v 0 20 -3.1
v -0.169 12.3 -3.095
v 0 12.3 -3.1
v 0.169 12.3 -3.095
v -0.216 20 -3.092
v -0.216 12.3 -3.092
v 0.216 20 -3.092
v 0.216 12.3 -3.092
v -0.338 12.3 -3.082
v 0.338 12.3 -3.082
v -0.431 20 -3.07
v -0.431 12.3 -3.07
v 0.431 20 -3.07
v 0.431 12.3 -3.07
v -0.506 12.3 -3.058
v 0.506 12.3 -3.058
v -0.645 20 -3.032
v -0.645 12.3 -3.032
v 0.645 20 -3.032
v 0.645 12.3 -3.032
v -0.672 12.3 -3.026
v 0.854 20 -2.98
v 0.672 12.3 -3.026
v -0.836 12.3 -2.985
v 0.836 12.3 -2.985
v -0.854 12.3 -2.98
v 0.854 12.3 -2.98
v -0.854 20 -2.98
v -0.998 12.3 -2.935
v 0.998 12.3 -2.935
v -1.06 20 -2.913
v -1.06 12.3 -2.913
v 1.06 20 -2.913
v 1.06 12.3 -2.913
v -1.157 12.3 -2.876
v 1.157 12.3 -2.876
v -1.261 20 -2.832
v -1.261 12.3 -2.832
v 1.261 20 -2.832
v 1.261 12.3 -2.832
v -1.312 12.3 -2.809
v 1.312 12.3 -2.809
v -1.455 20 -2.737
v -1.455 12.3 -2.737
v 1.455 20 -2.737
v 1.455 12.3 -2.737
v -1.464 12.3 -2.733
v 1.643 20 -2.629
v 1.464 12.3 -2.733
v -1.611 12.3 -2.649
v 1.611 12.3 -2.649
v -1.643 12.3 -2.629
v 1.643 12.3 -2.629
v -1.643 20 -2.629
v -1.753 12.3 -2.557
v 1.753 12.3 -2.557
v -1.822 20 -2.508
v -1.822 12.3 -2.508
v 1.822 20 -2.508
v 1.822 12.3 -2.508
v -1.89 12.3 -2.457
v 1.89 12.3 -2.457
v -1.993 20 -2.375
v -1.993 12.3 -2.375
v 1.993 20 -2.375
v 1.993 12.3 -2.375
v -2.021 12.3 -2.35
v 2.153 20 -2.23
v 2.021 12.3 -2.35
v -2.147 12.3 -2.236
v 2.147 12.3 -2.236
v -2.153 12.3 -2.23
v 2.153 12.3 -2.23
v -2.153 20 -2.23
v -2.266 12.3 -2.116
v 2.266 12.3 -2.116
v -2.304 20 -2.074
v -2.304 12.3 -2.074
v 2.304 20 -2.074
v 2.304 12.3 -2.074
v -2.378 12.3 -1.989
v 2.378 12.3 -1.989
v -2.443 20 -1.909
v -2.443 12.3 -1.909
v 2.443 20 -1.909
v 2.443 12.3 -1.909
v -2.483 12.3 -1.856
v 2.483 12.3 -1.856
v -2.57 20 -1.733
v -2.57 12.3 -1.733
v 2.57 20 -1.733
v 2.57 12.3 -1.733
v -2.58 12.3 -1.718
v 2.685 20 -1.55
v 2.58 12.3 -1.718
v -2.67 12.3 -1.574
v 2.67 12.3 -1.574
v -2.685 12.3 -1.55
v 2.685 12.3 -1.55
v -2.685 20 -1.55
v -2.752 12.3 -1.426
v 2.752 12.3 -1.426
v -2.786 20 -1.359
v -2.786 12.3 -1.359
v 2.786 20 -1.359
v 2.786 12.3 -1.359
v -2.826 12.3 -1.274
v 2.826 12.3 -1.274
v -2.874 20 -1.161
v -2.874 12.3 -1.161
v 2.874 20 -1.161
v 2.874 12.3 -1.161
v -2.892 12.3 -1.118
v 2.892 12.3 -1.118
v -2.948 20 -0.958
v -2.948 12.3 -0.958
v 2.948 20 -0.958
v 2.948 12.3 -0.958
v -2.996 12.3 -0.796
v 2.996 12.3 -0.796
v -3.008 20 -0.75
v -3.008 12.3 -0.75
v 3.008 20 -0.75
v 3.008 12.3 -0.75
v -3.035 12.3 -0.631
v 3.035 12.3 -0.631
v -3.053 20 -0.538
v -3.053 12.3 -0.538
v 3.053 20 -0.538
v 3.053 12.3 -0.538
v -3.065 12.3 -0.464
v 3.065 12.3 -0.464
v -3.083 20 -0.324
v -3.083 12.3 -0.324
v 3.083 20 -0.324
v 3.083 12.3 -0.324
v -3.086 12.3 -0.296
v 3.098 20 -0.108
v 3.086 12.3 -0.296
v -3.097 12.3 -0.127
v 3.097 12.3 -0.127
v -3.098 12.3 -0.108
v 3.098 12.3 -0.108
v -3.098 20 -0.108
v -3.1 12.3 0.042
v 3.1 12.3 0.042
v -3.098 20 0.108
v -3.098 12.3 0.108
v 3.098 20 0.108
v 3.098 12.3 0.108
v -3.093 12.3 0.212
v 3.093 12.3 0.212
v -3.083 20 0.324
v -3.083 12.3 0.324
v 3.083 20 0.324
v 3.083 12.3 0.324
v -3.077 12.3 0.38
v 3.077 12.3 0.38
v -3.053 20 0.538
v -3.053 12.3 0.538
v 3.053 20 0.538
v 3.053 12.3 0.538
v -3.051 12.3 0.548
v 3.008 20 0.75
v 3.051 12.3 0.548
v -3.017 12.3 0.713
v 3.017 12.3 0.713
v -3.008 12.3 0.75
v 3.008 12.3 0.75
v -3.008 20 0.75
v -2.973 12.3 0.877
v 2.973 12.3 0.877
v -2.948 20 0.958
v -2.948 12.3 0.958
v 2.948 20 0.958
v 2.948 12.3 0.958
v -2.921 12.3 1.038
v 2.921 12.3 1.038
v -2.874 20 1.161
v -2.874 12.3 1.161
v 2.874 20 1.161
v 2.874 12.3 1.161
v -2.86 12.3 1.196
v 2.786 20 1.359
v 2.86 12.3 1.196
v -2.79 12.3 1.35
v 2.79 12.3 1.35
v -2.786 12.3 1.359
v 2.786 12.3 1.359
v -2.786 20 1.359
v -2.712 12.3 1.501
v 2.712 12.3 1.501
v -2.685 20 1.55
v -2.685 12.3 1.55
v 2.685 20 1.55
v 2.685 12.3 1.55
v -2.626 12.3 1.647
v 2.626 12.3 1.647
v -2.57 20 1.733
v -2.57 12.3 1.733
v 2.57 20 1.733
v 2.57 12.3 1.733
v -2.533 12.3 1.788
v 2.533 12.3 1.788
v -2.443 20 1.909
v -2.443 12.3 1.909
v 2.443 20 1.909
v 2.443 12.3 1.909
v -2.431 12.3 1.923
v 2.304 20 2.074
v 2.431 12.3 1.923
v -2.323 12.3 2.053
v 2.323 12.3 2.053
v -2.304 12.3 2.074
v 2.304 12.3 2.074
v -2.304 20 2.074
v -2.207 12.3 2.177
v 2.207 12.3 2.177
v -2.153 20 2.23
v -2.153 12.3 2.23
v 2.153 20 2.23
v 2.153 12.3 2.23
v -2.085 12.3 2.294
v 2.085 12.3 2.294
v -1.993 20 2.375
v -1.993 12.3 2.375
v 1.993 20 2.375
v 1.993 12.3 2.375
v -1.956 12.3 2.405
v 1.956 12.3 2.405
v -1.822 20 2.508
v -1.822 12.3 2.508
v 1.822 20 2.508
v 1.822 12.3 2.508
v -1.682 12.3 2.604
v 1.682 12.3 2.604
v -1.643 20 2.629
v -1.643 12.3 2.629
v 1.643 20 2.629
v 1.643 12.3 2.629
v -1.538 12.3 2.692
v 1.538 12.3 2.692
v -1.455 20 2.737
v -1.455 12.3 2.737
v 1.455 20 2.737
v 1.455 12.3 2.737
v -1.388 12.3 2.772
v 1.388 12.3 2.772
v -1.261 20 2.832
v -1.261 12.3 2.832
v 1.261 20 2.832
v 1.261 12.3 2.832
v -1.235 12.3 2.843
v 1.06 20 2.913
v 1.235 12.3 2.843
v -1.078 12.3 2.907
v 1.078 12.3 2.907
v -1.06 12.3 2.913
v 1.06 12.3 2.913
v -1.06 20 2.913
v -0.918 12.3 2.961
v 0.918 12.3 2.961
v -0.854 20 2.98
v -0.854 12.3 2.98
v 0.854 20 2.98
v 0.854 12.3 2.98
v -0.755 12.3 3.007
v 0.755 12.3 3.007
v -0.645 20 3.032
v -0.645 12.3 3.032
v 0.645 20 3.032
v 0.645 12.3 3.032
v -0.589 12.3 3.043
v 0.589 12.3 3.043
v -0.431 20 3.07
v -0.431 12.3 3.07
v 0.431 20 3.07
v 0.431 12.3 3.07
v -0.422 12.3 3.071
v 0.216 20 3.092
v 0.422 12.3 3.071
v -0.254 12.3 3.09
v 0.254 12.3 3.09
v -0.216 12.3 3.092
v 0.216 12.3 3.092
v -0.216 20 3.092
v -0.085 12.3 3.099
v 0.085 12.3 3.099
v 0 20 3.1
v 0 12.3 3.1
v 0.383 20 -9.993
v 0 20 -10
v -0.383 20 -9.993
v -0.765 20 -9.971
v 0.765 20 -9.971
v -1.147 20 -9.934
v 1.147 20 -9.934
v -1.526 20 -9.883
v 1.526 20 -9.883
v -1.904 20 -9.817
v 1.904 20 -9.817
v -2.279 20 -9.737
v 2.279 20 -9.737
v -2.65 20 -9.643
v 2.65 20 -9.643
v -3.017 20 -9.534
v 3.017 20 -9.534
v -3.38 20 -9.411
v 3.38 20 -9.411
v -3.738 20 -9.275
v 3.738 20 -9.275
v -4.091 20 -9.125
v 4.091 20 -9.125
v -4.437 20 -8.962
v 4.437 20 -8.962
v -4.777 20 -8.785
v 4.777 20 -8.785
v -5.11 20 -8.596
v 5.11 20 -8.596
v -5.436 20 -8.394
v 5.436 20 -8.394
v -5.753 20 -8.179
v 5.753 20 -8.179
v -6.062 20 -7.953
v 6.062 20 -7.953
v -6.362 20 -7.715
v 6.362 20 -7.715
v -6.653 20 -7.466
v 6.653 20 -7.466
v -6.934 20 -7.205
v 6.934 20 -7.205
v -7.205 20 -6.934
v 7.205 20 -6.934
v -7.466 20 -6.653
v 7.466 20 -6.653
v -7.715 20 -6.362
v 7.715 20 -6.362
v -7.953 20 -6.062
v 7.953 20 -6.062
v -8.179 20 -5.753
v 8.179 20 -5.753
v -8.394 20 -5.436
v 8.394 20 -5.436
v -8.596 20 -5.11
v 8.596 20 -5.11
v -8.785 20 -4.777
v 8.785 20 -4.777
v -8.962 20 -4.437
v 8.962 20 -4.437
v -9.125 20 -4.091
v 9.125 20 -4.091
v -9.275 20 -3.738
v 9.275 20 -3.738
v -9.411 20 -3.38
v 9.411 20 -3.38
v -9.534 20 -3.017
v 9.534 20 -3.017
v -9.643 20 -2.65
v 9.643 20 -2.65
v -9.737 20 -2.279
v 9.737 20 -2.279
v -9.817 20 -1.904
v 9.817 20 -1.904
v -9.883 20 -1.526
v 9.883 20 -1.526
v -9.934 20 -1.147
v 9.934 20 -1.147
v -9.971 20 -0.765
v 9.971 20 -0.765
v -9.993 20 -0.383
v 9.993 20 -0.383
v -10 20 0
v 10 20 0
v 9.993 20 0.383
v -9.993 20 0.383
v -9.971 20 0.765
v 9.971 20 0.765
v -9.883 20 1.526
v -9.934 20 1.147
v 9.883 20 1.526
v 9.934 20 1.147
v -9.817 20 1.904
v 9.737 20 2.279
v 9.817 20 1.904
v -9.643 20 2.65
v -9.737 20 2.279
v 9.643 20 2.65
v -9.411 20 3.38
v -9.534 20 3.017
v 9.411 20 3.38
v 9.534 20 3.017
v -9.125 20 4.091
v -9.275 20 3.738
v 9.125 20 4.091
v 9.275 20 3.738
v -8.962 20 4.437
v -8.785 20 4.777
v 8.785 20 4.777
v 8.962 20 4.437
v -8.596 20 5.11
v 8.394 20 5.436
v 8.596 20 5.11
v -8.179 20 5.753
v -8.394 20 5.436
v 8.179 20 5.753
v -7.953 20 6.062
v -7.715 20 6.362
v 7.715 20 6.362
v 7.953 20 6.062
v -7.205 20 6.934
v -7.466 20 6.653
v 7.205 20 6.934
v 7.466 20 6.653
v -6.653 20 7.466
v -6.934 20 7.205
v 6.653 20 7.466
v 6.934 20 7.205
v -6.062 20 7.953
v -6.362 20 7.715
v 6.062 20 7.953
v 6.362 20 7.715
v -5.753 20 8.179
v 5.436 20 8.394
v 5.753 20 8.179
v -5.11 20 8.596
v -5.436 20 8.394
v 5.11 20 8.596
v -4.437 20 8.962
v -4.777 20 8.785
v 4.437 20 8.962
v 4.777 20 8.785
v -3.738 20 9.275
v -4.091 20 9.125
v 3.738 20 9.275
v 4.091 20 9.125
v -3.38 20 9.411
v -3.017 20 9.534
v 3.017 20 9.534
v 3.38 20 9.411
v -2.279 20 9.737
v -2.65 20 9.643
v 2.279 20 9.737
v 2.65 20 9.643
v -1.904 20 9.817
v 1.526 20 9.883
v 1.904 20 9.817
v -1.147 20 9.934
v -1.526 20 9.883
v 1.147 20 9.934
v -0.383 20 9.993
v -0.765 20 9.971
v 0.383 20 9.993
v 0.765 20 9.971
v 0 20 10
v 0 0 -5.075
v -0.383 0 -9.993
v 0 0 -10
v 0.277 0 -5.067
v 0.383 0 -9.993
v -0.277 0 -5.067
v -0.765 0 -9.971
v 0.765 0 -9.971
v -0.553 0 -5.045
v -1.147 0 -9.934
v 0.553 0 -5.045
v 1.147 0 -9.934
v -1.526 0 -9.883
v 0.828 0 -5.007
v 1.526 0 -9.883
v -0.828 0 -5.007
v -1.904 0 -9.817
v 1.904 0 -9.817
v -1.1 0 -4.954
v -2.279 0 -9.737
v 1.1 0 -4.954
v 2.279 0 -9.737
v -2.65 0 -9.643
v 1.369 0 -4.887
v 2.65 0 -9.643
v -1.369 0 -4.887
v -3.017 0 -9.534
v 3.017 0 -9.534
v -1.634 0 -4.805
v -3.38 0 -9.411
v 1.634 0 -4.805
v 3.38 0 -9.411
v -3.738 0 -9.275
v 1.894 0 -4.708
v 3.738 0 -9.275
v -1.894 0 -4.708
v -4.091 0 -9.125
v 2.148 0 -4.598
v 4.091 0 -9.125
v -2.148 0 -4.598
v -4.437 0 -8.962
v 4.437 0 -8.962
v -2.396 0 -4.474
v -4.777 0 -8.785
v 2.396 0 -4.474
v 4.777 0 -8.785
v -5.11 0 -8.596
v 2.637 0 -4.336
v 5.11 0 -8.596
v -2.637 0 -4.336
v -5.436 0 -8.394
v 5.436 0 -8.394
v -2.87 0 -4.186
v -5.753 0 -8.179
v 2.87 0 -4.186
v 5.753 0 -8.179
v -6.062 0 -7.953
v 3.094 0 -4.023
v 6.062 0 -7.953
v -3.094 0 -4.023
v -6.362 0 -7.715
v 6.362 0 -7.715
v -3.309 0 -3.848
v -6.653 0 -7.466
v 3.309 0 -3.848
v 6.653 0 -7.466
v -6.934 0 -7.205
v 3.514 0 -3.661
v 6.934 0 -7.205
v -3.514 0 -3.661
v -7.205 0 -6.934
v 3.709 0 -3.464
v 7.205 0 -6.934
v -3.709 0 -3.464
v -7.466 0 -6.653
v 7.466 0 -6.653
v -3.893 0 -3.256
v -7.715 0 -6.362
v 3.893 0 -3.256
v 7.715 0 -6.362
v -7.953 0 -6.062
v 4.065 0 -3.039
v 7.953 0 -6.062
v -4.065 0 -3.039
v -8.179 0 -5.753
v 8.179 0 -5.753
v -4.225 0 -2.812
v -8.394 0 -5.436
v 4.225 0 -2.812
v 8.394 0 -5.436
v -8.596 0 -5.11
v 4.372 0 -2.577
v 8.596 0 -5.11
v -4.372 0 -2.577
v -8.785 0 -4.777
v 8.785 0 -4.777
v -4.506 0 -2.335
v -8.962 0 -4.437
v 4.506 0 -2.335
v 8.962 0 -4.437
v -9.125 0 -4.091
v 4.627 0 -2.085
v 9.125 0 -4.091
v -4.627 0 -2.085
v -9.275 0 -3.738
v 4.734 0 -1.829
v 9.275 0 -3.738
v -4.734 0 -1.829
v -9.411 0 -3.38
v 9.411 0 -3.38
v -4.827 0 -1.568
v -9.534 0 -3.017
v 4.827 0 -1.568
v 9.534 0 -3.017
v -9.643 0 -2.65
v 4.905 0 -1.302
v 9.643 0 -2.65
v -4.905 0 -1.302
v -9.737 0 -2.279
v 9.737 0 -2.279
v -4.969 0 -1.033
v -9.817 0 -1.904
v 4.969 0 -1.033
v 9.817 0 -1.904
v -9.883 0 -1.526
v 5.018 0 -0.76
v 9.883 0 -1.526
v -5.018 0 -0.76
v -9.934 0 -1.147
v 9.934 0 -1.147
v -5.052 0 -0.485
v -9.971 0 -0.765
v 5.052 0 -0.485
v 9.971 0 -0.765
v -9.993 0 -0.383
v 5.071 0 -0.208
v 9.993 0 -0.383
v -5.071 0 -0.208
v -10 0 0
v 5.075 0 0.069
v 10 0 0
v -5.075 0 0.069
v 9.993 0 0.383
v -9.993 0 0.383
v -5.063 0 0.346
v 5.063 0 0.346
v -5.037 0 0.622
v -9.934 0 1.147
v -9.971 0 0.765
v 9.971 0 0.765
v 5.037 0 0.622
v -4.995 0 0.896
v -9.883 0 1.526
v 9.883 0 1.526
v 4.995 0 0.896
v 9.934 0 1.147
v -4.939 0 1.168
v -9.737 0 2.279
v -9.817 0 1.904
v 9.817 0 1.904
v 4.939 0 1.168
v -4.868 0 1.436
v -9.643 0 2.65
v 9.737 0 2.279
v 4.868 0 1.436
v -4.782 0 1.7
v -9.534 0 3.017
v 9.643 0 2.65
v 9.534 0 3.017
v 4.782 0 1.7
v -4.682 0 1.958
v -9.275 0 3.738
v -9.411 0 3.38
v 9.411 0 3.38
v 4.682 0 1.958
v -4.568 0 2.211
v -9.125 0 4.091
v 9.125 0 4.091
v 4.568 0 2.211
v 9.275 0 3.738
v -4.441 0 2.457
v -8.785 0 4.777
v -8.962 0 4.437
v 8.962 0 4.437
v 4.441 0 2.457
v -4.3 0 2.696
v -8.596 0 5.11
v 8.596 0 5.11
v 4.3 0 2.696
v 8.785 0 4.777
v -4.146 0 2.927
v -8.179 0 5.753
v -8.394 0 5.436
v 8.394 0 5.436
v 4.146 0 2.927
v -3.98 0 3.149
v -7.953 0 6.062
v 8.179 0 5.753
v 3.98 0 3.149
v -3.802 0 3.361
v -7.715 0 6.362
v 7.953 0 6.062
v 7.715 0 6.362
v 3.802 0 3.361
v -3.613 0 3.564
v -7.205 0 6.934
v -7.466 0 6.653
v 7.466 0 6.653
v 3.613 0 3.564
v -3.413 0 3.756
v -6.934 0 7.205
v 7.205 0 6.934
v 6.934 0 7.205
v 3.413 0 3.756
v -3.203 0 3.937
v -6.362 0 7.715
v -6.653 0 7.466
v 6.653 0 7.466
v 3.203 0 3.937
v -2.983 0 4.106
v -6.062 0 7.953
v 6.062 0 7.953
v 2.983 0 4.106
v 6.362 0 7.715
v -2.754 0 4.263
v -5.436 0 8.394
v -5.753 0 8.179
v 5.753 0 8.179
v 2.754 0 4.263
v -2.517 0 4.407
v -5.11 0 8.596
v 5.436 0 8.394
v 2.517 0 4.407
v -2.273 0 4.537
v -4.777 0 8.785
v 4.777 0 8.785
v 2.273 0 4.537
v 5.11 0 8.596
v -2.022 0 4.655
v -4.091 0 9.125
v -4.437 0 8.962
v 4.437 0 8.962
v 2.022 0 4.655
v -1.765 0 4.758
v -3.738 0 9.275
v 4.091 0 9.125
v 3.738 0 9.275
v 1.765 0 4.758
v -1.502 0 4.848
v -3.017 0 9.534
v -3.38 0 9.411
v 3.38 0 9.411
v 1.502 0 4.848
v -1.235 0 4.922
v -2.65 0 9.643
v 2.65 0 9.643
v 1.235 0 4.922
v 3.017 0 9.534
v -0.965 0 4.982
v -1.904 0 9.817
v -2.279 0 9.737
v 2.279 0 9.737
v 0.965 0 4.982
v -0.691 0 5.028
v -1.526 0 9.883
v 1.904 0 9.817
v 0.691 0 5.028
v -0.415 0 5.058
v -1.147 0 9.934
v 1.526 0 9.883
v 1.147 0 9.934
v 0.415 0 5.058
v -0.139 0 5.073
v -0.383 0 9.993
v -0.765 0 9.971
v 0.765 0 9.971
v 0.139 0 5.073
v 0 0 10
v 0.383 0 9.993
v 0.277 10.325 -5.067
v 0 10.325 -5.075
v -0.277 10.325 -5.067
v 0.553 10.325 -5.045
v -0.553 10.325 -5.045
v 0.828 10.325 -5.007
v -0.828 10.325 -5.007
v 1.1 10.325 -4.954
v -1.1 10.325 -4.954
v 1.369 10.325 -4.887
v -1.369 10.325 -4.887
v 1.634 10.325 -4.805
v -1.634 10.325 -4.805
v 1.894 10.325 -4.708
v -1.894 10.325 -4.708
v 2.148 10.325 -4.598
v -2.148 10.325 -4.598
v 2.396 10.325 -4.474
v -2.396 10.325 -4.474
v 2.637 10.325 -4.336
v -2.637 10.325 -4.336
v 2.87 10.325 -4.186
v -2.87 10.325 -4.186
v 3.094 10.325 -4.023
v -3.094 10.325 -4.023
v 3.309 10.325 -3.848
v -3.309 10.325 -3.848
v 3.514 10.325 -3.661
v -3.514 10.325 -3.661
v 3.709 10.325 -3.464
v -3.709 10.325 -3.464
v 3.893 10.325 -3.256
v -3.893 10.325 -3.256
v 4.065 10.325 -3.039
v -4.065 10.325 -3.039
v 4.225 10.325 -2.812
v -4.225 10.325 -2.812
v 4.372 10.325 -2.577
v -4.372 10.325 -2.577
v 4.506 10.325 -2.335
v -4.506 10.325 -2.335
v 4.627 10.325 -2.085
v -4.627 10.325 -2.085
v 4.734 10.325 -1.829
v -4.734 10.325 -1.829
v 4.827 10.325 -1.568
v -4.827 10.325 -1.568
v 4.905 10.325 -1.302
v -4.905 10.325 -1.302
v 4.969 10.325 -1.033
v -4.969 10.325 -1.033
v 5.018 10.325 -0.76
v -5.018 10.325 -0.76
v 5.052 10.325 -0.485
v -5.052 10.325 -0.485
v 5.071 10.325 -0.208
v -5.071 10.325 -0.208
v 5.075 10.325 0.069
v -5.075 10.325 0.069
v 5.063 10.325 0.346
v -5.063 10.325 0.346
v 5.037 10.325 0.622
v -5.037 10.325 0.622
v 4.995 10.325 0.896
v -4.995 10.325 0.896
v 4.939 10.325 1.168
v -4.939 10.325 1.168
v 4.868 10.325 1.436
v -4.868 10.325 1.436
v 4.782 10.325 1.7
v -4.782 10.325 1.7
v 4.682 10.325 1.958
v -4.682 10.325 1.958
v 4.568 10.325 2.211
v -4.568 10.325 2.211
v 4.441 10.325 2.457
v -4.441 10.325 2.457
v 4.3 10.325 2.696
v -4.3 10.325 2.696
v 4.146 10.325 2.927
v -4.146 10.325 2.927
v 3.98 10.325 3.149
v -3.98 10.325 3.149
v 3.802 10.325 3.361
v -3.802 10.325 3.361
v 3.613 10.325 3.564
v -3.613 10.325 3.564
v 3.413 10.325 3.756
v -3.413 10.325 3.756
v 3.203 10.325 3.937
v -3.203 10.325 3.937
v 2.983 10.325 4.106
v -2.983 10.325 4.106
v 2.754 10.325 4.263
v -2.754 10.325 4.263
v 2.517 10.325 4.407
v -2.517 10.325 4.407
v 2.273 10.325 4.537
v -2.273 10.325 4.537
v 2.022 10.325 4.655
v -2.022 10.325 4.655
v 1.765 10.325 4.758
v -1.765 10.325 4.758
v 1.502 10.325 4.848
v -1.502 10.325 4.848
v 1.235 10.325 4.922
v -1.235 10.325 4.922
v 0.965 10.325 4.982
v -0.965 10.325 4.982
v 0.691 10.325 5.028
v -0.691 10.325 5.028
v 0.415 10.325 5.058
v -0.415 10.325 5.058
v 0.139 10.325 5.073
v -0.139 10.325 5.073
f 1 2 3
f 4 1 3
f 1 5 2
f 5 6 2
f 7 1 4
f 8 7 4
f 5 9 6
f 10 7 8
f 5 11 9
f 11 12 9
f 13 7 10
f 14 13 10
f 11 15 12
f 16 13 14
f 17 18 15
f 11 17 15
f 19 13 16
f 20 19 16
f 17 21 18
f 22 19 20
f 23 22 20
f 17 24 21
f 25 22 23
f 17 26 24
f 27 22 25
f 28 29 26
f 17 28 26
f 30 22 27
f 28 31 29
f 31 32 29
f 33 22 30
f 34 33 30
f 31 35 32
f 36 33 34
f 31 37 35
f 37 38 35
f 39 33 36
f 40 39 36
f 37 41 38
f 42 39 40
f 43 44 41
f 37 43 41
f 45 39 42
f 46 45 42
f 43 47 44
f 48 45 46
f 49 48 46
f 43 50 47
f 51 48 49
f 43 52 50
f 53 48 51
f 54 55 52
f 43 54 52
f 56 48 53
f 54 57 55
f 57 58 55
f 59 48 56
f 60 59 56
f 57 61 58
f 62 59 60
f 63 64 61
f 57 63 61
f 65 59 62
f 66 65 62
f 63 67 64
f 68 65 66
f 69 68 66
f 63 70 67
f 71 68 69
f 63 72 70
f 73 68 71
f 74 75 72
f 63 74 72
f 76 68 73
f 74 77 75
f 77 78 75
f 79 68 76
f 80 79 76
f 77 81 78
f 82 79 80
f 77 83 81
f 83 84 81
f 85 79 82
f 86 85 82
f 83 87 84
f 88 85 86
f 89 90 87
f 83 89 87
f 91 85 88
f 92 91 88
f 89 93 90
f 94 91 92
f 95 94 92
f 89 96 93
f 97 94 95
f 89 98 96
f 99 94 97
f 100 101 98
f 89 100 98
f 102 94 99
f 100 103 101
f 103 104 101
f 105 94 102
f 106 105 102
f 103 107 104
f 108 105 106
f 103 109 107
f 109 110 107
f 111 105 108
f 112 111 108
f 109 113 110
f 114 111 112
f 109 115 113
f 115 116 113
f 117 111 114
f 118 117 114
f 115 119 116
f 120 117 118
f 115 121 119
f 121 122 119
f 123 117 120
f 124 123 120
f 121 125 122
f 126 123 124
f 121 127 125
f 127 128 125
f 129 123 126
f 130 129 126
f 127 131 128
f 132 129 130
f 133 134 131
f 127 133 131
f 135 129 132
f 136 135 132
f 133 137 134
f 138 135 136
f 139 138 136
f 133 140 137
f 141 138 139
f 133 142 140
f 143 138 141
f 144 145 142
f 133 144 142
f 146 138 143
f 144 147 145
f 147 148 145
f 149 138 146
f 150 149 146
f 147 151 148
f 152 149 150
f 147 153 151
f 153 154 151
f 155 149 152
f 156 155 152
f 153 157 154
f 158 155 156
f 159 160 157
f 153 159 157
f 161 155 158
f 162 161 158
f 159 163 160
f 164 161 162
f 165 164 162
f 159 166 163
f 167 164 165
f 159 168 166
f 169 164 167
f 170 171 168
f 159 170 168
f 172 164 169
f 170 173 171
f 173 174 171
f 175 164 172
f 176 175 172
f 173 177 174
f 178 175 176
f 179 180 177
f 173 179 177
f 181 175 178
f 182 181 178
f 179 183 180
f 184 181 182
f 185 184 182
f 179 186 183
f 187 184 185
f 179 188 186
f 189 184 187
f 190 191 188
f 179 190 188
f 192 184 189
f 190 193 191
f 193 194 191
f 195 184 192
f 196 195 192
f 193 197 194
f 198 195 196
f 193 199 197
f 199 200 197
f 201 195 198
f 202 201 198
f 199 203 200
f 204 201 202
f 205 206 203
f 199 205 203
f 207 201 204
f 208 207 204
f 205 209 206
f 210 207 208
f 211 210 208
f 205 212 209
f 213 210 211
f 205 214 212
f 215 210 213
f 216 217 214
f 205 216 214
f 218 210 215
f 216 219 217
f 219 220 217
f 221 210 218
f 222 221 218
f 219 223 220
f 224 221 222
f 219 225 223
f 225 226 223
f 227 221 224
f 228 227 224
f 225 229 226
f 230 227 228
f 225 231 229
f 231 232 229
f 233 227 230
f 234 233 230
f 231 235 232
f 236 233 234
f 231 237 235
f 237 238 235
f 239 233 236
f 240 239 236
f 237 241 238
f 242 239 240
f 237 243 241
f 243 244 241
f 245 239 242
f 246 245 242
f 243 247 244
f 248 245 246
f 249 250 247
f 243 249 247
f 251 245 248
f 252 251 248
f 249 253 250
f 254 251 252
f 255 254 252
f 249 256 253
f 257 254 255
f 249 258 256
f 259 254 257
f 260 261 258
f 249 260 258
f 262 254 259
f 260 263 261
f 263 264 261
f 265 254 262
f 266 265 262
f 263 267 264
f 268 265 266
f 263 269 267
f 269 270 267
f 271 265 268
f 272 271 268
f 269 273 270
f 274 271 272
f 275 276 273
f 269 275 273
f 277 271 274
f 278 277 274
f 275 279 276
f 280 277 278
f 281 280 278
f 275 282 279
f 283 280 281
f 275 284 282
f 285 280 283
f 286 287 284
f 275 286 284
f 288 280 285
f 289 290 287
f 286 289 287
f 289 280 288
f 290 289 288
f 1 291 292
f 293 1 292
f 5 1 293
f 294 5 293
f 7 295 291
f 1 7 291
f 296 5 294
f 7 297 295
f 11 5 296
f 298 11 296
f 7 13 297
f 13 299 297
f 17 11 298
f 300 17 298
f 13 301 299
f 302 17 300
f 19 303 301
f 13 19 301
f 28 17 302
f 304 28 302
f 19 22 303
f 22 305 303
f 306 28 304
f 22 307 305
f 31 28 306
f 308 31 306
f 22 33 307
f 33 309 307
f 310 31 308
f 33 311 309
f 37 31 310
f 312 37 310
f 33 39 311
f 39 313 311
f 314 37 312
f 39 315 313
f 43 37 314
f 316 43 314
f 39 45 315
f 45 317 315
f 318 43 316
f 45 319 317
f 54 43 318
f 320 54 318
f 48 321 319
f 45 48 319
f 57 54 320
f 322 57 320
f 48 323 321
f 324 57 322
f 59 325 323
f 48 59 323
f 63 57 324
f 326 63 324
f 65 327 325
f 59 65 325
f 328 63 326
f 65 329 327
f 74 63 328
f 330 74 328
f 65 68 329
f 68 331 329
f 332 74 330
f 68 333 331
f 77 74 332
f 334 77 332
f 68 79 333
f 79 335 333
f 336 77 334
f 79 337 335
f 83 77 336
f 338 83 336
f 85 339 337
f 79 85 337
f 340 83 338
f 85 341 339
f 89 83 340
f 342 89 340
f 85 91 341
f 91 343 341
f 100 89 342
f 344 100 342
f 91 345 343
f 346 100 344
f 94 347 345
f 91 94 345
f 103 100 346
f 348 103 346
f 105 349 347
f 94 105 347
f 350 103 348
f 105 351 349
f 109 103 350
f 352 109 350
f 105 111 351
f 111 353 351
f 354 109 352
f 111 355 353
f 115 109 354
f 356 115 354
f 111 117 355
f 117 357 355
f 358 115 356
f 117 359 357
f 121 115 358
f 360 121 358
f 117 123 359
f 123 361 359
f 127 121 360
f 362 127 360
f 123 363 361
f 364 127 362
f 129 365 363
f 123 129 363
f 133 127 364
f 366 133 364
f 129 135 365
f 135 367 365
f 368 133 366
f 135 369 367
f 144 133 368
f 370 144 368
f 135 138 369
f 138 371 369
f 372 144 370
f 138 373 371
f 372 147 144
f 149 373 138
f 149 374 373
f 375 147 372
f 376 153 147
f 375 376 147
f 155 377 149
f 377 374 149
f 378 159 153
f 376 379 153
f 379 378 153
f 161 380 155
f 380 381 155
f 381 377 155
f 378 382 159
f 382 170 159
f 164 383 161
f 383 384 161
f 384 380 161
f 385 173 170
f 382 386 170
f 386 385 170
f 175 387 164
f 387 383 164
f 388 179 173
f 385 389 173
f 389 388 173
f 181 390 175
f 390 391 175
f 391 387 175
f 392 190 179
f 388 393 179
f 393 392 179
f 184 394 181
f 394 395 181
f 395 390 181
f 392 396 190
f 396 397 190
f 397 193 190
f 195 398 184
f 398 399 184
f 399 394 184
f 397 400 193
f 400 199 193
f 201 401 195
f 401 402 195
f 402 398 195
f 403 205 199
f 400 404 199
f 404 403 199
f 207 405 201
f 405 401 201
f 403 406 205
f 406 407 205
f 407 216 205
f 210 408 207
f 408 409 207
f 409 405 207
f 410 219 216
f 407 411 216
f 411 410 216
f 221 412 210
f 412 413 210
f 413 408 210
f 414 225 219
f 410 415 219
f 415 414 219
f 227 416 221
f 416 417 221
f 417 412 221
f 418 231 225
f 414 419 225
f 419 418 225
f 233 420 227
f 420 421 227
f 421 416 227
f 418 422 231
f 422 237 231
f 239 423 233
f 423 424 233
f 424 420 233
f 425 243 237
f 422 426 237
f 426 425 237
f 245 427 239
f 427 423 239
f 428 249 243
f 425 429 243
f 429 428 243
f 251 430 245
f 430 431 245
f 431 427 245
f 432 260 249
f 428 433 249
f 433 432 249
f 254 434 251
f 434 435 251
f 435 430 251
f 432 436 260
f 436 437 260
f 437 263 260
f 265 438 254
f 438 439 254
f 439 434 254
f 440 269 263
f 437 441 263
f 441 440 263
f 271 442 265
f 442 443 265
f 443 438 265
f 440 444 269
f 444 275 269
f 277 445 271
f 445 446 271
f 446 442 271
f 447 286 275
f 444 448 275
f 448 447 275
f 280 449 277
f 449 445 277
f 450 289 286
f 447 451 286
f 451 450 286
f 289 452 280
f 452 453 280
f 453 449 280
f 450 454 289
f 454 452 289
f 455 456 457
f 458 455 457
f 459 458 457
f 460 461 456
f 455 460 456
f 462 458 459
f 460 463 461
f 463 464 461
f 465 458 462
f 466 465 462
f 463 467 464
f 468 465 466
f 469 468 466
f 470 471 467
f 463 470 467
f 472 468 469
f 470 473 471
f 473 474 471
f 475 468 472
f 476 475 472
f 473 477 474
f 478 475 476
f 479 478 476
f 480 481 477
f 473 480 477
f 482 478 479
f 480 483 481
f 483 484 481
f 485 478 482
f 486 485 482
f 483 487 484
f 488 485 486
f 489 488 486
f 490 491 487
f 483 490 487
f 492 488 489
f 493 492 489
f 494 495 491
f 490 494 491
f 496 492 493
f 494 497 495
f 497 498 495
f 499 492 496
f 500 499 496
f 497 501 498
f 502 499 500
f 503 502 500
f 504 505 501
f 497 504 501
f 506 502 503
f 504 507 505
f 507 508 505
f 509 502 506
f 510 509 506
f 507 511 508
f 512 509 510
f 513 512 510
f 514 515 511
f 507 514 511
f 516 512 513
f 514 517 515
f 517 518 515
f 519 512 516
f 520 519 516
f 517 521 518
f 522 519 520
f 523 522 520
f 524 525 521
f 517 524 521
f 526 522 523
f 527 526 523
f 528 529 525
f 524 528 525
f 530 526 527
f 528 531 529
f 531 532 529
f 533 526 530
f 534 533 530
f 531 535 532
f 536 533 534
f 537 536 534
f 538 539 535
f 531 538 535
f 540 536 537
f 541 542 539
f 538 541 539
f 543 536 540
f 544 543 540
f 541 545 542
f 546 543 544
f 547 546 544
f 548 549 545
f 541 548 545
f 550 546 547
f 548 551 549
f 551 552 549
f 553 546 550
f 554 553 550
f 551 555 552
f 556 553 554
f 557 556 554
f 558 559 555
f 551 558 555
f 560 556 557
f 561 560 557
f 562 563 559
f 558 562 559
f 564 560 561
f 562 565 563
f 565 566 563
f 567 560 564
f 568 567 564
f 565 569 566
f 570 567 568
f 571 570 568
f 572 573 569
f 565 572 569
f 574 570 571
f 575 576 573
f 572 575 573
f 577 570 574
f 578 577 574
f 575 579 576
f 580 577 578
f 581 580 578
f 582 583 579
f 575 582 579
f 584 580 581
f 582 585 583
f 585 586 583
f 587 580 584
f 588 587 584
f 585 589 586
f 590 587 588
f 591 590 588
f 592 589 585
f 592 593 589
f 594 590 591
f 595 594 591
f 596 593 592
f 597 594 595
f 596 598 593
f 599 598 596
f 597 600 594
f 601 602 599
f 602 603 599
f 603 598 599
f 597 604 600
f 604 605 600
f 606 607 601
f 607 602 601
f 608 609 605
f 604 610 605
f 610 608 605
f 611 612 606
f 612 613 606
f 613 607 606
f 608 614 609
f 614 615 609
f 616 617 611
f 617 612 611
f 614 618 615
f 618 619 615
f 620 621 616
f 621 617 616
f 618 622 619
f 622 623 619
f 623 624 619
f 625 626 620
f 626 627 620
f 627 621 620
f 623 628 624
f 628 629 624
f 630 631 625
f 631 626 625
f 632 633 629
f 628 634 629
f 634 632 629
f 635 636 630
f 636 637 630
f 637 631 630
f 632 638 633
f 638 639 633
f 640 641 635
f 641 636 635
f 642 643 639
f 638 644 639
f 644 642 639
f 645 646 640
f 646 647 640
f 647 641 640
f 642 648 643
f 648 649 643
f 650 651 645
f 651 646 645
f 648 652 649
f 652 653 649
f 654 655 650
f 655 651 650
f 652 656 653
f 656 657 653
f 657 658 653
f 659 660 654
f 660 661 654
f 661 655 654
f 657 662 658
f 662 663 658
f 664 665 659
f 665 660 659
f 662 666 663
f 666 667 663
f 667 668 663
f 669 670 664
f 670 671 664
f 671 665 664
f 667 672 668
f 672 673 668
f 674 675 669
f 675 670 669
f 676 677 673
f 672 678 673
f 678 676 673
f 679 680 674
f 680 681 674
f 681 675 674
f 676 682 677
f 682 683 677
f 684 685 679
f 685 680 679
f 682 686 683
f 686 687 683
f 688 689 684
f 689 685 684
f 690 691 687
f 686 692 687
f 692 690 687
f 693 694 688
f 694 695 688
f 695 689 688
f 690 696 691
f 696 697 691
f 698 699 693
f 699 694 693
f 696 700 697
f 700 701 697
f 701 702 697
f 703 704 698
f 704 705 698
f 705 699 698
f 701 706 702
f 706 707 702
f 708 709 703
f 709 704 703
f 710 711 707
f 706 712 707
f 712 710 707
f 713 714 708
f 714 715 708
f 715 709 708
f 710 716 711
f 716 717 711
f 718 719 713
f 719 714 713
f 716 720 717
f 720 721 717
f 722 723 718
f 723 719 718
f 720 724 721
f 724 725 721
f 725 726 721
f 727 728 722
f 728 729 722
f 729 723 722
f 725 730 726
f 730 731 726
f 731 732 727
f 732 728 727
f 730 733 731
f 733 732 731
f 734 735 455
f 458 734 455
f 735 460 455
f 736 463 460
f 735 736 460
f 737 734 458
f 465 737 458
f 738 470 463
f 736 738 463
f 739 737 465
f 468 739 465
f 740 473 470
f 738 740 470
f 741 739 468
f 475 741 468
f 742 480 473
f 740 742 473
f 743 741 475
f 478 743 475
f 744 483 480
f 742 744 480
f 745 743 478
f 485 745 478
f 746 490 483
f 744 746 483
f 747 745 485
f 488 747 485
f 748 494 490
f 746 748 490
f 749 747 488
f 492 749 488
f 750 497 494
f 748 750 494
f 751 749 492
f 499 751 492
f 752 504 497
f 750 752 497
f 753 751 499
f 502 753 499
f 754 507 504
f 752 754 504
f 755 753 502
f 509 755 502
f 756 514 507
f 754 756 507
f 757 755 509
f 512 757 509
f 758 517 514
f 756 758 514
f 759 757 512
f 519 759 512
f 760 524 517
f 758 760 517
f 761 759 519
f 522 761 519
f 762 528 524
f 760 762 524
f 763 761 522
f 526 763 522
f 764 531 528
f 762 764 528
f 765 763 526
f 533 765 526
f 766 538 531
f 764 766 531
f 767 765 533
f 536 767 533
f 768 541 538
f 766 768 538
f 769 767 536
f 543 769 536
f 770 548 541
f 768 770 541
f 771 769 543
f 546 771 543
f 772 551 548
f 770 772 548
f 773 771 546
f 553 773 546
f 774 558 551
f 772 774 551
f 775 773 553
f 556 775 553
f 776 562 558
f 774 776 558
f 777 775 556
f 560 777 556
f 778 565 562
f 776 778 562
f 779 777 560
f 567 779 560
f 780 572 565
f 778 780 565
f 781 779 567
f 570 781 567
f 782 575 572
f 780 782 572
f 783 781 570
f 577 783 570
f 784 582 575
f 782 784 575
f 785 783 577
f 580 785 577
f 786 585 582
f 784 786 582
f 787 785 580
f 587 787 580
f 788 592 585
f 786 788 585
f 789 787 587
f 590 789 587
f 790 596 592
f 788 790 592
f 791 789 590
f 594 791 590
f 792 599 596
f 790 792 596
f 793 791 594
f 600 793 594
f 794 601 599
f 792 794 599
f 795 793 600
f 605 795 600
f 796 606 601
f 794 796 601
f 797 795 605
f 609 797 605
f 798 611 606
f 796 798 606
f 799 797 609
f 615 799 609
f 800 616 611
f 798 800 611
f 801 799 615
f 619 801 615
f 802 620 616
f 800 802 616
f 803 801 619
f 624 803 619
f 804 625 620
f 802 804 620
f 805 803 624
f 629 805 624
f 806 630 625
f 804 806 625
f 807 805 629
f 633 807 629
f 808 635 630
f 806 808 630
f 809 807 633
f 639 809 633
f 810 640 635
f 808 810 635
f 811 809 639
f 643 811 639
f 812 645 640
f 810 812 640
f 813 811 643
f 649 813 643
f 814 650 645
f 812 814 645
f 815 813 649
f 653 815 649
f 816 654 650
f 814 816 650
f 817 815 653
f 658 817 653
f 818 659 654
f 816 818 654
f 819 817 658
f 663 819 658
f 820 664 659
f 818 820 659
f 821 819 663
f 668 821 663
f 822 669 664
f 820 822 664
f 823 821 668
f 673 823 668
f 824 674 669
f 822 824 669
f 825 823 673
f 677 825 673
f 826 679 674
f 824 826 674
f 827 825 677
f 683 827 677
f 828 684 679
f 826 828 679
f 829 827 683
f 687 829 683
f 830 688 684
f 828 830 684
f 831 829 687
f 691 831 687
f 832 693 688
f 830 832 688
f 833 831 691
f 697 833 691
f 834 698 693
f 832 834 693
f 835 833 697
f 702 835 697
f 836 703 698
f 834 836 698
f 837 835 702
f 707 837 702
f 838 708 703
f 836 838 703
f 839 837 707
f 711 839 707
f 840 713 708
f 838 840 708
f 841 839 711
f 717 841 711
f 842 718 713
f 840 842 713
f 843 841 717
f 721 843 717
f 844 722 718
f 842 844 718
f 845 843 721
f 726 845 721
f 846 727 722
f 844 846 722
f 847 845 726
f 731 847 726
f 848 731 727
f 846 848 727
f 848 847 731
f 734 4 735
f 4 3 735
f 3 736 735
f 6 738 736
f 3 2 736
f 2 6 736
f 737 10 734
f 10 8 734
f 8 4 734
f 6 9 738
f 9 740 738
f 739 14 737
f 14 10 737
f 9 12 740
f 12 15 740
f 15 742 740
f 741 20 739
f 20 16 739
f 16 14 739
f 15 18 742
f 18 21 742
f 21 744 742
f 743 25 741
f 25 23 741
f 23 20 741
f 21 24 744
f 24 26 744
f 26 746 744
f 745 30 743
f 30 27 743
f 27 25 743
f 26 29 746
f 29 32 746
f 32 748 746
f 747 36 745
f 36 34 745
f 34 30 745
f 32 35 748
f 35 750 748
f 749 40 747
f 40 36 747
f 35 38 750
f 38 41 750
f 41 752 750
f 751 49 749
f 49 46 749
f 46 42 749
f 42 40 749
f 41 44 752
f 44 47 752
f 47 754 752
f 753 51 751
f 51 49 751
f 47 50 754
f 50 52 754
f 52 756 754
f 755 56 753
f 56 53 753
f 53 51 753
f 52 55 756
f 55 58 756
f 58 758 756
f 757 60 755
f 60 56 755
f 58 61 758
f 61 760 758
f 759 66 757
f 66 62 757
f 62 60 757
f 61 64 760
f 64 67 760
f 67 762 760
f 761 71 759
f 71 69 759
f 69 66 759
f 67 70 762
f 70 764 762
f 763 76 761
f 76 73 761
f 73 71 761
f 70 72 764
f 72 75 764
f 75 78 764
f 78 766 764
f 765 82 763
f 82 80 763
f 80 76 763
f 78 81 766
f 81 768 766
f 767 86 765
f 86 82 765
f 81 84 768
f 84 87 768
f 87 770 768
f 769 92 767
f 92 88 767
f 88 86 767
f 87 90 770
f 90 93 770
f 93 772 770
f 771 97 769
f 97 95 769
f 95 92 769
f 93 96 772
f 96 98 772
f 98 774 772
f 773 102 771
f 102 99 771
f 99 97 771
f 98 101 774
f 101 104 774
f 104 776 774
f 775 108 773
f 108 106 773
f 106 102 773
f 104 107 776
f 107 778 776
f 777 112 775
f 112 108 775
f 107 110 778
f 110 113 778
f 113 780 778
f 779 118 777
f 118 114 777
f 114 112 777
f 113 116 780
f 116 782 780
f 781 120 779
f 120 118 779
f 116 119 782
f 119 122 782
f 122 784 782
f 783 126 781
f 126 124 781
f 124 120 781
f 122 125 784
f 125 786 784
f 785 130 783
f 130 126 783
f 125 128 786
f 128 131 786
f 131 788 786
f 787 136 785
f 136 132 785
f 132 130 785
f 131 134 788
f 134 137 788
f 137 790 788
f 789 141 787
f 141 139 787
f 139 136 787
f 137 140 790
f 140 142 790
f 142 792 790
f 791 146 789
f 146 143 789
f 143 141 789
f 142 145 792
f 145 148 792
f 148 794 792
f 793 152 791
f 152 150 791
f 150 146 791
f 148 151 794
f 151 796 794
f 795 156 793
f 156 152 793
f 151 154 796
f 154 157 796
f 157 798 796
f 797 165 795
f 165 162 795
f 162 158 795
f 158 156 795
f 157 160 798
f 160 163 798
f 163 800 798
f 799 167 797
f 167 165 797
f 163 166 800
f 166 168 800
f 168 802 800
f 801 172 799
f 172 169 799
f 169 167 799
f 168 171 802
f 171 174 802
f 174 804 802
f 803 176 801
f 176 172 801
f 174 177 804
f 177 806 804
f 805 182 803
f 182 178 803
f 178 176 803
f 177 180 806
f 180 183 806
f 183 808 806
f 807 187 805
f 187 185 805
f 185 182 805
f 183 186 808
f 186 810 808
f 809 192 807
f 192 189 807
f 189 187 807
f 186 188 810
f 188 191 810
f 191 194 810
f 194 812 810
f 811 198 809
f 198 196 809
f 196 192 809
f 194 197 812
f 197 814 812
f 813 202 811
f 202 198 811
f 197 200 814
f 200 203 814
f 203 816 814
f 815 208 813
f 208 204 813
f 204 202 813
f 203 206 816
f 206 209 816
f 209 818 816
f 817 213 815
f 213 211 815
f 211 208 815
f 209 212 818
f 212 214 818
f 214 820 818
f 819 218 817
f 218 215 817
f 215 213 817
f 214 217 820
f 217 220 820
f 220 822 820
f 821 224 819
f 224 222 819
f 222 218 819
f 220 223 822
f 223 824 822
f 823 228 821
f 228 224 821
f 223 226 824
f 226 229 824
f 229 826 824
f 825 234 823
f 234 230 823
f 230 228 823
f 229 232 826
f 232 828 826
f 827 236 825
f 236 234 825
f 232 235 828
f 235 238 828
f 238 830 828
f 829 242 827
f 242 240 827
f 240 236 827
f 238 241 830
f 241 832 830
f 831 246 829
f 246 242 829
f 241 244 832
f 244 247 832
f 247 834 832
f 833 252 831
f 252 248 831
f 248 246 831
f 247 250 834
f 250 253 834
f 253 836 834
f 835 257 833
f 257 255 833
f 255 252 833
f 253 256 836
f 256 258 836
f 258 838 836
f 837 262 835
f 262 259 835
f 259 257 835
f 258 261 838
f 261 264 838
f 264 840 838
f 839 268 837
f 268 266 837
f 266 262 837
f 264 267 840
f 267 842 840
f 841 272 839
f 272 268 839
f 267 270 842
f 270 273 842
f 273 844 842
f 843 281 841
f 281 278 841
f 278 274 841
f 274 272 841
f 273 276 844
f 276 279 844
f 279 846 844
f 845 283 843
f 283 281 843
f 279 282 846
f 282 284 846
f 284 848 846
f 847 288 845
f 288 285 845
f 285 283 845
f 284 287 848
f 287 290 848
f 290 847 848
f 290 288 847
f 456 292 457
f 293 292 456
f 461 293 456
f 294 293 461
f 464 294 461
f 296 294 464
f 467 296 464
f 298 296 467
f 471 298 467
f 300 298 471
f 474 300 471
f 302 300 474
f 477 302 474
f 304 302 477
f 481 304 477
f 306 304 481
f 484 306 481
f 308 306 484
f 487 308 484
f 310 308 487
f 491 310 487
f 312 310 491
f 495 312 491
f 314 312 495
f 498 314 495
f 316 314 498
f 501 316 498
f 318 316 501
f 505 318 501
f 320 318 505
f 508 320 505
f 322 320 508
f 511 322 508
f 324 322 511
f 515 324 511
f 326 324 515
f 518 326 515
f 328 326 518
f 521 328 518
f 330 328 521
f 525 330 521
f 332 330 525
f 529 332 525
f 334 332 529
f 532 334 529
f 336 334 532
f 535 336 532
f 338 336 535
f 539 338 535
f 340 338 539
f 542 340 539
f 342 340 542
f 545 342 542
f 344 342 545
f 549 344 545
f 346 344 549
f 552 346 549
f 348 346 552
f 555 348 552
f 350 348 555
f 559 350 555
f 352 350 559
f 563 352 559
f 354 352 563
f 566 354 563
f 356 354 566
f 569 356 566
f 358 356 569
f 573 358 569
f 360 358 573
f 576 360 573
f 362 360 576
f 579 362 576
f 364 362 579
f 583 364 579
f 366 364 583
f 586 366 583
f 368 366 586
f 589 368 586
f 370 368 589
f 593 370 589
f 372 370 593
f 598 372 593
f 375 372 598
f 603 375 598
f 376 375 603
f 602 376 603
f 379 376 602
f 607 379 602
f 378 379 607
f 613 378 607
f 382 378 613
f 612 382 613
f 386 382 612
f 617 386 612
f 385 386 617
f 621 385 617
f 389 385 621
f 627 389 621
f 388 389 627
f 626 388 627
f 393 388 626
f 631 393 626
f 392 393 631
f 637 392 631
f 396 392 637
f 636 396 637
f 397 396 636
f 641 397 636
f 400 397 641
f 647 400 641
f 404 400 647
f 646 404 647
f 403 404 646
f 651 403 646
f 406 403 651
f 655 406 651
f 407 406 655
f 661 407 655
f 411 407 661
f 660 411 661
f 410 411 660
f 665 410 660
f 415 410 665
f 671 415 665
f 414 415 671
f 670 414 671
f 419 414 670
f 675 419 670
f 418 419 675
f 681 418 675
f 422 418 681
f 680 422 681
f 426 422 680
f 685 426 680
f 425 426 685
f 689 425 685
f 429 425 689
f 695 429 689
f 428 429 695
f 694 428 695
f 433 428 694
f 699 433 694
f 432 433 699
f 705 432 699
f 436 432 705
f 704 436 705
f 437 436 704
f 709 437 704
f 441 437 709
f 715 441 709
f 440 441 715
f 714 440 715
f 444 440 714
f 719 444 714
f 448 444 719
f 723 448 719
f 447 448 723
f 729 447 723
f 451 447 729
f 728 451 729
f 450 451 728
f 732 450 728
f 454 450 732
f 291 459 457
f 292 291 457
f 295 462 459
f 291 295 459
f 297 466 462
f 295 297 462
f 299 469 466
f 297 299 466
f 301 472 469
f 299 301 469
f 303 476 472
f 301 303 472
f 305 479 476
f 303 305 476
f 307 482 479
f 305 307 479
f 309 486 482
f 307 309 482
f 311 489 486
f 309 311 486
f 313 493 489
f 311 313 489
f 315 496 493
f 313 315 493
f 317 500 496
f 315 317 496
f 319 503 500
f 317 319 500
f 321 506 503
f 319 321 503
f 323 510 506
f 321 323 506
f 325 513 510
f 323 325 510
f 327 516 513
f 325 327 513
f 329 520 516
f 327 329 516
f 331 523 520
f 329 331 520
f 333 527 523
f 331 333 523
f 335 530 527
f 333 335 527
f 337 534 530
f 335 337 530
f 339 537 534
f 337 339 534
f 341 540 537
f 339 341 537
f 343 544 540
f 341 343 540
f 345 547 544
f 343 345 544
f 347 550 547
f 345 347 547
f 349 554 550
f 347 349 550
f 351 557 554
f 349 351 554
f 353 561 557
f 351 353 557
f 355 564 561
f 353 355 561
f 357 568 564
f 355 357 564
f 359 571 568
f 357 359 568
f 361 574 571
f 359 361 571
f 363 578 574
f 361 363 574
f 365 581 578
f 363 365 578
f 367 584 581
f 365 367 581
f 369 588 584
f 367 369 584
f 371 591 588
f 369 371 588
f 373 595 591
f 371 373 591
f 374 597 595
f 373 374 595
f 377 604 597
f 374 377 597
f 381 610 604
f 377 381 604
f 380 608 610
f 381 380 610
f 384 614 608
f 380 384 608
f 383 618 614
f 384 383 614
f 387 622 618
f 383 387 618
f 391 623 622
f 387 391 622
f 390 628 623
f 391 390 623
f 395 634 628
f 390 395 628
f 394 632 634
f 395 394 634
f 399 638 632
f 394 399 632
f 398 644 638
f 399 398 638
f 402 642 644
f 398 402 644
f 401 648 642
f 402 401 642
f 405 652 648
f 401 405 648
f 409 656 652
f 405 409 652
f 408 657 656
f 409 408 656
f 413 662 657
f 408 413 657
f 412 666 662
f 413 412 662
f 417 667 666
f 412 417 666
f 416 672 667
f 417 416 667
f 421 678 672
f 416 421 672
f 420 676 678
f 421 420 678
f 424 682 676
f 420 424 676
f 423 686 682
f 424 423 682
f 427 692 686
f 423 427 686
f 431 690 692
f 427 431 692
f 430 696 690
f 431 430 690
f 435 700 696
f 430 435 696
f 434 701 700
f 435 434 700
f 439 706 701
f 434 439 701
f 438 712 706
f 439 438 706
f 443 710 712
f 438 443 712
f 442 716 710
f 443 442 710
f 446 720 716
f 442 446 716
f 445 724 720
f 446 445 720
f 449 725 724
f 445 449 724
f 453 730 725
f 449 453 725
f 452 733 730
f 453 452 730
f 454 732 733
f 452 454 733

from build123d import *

# Parameters (mm, degrees)
SKETCH1_W           = 20
SKETCH1_H           = 20
BOSS_EXTRUDE1_DEPTH = 20
SKETCH2_R           = 3.1
CUT_EXTRUDE1_DEPTH  = 20
SKETCH3_R           = 5.075
CUT_EXTRUDE2_DEPTH  = 9.3
CHAMFER1_SIZE       = 3
FILLET1_R           = 10


# Some blends are built 0.0001 mm under size
with BuildPart() as part:
    # Sketch1 → Boss-Extrude1 (new body)
    with BuildSketch(Plane(origin=(0, 0, 0), x_dir=(1, 0, 0), z_dir=(0, 1, 0))):
        Rectangle(SKETCH1_W, SKETCH1_H)
    extrude(amount=BOSS_EXTRUDE1_DEPTH)

    # Sketch2 → Cut-Extrude1 (cut)
    with BuildSketch(Plane(origin=(0, 20, 0), x_dir=(1, 0, 0), z_dir=(0, 1, 0))):
        with Locations(Location((0, 0, 0), (0, 0, 270))):
            Circle(SKETCH2_R)
    extrude(amount=-CUT_EXTRUDE1_DEPTH, mode=Mode.SUBTRACT)

    # Sketch3 → Cut-Extrude2 (cut)
    with BuildSketch(Plane.XZ):
        with Locations(Location((0, 0, 0), (0, 0, 270))):
            Circle(SKETCH3_R)
    extrude(amount=-CUT_EXTRUDE2_DEPTH, mode=Mode.SUBTRACT)

    # Chamfer1
    # the kernel refuses this chamfer: 3 mm, written as the material it takes off along each edge
    with BuildSketch(Plane(origin=(0, 9.3, 0), x_dir=(0, 0, 1), z_dir=(-1, 0, 0))) as chamfer1_piece_1_section:
        Polygon((3.1, CHAMFER1_SIZE), (3.1 + CHAMFER1_SIZE, 0), (3.1, 0), align=None)
    chamfer1_piece_1 = revolve(axis=Axis((0, 9.3, 0), (0, 1, 0)), mode=Mode.PRIVATE)
    chamfer1_piece_1 = chamfer1_piece_1 & Plane(origin=(0, 11.321537765, 0), x_dir=(0, 0, -1), z_dir=(0, -1, 0)) * Cylinder(5.075, 25, mode=Mode.PRIVATE)
    add(chamfer1_piece_1, mode=Mode.SUBTRACT)

    # Fillet1
    fillet1_edges = [part.edges().sort_by_distance(p)[0] for p in [
        (10, 10, 10),
        (10, 10, -10),
        (-10, 10, -10),
        (-10, 10, 10),
    ]]
    fillet(fillet1_edges, radius=FILLET1_R - 0.0001)  # a hair under: the kernel refuses the full size


solid = part.part
